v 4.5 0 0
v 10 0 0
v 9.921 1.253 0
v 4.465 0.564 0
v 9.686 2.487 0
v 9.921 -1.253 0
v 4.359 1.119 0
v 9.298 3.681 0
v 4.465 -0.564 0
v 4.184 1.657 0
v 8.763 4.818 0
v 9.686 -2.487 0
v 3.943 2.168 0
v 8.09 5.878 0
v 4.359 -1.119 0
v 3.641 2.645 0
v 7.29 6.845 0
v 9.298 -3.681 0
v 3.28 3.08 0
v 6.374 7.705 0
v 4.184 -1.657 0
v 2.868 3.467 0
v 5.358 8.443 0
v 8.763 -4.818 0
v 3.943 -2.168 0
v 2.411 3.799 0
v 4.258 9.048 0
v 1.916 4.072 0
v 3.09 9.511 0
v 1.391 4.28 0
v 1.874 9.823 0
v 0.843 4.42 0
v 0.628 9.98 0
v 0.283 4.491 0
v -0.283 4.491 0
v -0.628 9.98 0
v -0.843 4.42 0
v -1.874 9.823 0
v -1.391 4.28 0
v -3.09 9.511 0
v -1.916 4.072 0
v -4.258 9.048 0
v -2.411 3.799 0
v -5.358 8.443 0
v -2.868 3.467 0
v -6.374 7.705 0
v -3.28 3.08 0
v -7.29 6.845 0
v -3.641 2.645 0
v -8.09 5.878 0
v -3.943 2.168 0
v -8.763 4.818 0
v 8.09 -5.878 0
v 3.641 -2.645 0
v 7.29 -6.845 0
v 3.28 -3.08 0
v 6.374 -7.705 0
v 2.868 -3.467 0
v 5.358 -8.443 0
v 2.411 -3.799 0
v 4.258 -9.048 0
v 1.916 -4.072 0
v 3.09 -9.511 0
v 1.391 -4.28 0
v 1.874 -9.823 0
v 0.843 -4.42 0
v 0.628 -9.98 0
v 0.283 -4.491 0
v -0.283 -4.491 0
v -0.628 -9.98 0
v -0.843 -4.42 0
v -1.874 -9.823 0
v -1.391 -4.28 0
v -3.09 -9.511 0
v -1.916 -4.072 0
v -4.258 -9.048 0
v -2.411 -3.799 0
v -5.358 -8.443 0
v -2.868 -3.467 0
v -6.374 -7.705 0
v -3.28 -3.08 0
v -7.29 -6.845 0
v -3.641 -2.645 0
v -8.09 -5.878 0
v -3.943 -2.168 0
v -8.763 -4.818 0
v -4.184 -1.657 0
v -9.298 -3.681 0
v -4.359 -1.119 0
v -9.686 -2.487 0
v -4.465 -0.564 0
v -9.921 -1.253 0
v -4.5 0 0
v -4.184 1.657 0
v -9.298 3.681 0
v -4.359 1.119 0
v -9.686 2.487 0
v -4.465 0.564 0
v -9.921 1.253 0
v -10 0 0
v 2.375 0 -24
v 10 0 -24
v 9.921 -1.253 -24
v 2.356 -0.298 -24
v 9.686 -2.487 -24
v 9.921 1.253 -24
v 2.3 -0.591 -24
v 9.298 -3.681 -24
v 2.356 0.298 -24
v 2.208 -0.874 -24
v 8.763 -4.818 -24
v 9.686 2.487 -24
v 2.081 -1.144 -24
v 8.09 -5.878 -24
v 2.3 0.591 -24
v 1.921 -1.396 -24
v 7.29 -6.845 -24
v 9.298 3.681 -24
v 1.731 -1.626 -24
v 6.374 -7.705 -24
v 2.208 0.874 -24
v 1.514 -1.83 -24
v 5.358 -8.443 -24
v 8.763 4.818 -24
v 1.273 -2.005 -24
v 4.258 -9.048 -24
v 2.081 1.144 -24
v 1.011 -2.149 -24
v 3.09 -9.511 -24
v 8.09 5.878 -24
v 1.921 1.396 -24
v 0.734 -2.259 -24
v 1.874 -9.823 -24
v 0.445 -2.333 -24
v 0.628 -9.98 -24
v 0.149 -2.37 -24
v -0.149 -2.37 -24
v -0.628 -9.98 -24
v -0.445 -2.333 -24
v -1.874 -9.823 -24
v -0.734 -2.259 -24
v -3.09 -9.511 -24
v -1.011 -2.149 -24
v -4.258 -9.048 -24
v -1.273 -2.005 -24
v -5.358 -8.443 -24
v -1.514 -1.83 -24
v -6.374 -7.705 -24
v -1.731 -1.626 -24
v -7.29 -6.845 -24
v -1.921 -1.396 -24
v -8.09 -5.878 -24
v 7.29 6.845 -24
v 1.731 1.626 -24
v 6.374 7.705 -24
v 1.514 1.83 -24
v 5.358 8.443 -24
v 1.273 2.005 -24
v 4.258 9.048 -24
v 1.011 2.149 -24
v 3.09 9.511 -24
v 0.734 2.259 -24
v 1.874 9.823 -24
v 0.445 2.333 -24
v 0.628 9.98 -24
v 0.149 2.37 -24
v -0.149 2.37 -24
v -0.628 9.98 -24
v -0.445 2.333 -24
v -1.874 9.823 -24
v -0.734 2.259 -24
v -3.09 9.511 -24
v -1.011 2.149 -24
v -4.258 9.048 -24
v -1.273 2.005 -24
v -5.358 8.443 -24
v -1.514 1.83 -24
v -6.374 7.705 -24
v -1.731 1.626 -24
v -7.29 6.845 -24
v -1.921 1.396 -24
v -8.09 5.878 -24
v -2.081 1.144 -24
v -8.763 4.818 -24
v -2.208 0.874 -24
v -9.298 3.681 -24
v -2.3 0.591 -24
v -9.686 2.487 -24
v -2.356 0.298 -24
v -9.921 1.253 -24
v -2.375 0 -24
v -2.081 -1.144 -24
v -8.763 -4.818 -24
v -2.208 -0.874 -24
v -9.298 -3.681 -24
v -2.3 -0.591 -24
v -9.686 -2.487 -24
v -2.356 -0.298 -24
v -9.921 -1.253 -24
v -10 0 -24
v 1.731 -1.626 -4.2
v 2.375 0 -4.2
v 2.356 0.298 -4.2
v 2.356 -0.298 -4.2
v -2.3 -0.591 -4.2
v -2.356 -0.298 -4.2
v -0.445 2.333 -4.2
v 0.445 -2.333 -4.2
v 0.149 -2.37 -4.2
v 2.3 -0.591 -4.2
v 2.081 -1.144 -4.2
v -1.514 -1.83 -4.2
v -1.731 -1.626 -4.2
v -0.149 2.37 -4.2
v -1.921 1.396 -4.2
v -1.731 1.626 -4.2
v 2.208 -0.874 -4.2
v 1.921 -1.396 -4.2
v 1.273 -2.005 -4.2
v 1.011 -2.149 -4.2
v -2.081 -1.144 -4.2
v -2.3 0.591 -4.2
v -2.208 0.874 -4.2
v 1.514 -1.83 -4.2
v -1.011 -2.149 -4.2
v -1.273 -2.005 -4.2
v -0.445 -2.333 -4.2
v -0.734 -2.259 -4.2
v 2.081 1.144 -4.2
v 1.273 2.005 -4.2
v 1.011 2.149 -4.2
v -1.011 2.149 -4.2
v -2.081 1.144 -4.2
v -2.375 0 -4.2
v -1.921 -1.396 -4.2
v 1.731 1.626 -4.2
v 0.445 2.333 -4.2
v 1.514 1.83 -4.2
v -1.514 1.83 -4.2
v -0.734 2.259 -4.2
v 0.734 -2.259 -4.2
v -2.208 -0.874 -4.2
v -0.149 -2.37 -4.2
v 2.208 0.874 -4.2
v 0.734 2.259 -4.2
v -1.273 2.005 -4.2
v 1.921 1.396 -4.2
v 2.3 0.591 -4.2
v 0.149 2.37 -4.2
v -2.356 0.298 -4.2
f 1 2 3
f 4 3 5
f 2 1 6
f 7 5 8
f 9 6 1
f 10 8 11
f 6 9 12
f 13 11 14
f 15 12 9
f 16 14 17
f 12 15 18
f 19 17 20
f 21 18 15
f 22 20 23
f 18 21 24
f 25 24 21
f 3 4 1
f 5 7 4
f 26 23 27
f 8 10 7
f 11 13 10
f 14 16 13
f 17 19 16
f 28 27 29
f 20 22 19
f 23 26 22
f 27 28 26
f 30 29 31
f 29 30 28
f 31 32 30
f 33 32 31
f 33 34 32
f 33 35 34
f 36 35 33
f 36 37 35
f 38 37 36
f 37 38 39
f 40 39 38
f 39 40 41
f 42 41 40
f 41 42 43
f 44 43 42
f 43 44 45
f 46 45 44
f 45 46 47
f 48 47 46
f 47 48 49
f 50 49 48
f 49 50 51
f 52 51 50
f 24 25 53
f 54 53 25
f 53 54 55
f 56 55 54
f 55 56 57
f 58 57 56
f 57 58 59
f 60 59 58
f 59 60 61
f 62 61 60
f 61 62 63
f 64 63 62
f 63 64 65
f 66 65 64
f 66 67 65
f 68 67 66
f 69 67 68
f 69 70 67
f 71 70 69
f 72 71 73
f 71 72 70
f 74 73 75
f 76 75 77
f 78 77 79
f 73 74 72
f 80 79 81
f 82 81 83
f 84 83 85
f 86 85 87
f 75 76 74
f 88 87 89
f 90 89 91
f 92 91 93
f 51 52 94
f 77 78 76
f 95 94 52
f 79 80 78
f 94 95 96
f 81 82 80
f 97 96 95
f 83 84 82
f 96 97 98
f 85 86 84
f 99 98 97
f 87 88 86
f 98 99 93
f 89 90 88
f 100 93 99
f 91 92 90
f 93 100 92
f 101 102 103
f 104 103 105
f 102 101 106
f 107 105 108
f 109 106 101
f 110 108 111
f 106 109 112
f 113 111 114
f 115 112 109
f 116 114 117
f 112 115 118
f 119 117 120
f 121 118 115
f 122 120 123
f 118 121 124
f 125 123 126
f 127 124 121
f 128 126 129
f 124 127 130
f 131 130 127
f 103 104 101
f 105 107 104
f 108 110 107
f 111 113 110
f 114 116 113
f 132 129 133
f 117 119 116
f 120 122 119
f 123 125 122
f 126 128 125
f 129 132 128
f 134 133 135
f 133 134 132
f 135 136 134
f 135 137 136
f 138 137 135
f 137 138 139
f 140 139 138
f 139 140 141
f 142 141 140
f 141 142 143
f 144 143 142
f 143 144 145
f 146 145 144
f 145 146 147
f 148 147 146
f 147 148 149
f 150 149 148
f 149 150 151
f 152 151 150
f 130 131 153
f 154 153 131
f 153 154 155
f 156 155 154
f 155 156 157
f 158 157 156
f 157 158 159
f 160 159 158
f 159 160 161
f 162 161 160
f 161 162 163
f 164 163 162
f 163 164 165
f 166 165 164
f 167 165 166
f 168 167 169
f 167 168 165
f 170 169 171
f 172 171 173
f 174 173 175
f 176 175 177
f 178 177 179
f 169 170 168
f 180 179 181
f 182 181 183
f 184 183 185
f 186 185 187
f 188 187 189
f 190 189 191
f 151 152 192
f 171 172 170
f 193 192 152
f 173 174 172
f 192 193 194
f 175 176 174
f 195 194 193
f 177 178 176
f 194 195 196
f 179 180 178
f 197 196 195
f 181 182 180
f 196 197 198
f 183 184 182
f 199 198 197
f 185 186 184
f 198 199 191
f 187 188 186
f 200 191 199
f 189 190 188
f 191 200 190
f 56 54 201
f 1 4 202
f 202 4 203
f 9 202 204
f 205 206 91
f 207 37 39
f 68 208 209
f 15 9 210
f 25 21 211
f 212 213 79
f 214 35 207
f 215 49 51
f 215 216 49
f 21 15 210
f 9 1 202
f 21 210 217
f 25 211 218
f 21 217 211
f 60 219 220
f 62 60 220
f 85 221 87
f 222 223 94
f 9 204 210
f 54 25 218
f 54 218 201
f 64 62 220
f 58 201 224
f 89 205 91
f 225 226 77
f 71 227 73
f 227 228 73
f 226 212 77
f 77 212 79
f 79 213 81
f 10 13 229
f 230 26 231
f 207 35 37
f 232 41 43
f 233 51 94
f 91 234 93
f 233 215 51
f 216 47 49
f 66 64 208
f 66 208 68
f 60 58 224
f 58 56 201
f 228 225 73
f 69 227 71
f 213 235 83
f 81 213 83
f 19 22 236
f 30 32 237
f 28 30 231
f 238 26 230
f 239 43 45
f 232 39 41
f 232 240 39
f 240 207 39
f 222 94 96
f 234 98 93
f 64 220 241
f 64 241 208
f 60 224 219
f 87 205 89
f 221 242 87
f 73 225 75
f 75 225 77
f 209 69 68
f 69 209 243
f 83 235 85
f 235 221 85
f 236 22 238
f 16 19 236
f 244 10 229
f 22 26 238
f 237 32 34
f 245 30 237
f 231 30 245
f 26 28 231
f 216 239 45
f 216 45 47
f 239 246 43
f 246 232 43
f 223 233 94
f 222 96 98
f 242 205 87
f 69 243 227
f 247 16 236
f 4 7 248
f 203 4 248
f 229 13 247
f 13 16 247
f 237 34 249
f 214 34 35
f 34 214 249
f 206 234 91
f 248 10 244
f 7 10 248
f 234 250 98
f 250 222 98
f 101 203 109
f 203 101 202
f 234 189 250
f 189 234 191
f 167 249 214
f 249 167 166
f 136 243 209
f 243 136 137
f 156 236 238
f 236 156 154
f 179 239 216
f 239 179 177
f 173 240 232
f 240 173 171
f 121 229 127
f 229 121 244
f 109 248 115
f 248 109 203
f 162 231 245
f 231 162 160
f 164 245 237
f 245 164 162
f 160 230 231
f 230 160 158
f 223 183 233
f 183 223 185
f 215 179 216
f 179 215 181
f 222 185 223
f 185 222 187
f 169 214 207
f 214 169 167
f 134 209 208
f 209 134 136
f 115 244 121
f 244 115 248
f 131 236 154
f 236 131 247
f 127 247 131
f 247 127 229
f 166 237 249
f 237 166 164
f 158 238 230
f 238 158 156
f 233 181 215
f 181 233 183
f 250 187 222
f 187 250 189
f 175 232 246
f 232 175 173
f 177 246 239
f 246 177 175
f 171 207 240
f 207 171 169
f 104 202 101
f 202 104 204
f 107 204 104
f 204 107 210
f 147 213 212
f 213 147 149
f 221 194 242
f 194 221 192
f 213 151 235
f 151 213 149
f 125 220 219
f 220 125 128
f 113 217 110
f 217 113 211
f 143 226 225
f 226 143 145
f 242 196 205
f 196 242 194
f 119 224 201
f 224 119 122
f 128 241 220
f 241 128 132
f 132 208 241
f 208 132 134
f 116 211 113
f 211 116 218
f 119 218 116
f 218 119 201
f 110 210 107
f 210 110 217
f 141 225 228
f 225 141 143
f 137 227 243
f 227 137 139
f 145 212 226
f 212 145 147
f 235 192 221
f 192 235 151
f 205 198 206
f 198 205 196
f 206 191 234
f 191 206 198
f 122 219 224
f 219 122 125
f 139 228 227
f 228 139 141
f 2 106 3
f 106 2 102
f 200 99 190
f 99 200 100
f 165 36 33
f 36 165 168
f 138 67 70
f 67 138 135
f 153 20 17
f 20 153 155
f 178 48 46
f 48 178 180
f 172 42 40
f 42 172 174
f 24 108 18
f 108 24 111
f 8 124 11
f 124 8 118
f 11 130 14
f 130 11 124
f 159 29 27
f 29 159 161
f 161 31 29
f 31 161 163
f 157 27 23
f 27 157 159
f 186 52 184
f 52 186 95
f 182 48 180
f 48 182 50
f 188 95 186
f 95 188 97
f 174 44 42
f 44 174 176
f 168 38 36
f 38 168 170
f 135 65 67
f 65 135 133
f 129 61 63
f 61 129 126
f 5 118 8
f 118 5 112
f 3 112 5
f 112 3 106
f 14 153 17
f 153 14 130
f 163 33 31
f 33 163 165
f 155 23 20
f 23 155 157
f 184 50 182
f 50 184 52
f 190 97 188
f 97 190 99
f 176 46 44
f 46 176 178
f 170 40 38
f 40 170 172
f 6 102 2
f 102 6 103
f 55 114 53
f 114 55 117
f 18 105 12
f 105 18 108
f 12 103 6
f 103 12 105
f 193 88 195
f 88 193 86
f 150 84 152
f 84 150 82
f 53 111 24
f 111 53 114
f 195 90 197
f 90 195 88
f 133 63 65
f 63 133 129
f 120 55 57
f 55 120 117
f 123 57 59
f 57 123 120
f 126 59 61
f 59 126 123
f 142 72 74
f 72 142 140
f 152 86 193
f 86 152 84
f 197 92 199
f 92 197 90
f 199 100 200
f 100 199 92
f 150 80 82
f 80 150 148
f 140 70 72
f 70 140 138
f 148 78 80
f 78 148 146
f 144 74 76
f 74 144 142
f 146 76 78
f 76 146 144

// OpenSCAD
$fn = 50;


difference() {
	union() {
		translate(v = [0, 0, -24.0000000000]) {
			cylinder(h = 24, r = 10.0000000000);
		}
		cylinder(h = 0, r = 16.0000000000);
	}
	union() {
		translate(v = [0, 0, 0]) {
			rotate(a = [0, 0, 0]) {
				difference() {
					union() {
						#translate(v = [0, 0, -24.0000000000]) {
							cylinder(h = 24, r = 2.2500000000);
						}
						#translate(v = [0, 0, -4.2000000000]) {
							cylinder(h = 4.2000000000, r = 10.0000000000, r1 = 2.3750000000, r2 = 4.5000000000);
						}
						#translate(v = [0, 0, -24.0000000000]) {
							cylinder(h = 24, r = 2.3750000000);
						}
						#translate(v = [0, 0, -24.0000000000]) {
							cylinder(h = 24, r = 2.2500000000);
						}
					}
					union();
				}
			}
		}
	}
}
